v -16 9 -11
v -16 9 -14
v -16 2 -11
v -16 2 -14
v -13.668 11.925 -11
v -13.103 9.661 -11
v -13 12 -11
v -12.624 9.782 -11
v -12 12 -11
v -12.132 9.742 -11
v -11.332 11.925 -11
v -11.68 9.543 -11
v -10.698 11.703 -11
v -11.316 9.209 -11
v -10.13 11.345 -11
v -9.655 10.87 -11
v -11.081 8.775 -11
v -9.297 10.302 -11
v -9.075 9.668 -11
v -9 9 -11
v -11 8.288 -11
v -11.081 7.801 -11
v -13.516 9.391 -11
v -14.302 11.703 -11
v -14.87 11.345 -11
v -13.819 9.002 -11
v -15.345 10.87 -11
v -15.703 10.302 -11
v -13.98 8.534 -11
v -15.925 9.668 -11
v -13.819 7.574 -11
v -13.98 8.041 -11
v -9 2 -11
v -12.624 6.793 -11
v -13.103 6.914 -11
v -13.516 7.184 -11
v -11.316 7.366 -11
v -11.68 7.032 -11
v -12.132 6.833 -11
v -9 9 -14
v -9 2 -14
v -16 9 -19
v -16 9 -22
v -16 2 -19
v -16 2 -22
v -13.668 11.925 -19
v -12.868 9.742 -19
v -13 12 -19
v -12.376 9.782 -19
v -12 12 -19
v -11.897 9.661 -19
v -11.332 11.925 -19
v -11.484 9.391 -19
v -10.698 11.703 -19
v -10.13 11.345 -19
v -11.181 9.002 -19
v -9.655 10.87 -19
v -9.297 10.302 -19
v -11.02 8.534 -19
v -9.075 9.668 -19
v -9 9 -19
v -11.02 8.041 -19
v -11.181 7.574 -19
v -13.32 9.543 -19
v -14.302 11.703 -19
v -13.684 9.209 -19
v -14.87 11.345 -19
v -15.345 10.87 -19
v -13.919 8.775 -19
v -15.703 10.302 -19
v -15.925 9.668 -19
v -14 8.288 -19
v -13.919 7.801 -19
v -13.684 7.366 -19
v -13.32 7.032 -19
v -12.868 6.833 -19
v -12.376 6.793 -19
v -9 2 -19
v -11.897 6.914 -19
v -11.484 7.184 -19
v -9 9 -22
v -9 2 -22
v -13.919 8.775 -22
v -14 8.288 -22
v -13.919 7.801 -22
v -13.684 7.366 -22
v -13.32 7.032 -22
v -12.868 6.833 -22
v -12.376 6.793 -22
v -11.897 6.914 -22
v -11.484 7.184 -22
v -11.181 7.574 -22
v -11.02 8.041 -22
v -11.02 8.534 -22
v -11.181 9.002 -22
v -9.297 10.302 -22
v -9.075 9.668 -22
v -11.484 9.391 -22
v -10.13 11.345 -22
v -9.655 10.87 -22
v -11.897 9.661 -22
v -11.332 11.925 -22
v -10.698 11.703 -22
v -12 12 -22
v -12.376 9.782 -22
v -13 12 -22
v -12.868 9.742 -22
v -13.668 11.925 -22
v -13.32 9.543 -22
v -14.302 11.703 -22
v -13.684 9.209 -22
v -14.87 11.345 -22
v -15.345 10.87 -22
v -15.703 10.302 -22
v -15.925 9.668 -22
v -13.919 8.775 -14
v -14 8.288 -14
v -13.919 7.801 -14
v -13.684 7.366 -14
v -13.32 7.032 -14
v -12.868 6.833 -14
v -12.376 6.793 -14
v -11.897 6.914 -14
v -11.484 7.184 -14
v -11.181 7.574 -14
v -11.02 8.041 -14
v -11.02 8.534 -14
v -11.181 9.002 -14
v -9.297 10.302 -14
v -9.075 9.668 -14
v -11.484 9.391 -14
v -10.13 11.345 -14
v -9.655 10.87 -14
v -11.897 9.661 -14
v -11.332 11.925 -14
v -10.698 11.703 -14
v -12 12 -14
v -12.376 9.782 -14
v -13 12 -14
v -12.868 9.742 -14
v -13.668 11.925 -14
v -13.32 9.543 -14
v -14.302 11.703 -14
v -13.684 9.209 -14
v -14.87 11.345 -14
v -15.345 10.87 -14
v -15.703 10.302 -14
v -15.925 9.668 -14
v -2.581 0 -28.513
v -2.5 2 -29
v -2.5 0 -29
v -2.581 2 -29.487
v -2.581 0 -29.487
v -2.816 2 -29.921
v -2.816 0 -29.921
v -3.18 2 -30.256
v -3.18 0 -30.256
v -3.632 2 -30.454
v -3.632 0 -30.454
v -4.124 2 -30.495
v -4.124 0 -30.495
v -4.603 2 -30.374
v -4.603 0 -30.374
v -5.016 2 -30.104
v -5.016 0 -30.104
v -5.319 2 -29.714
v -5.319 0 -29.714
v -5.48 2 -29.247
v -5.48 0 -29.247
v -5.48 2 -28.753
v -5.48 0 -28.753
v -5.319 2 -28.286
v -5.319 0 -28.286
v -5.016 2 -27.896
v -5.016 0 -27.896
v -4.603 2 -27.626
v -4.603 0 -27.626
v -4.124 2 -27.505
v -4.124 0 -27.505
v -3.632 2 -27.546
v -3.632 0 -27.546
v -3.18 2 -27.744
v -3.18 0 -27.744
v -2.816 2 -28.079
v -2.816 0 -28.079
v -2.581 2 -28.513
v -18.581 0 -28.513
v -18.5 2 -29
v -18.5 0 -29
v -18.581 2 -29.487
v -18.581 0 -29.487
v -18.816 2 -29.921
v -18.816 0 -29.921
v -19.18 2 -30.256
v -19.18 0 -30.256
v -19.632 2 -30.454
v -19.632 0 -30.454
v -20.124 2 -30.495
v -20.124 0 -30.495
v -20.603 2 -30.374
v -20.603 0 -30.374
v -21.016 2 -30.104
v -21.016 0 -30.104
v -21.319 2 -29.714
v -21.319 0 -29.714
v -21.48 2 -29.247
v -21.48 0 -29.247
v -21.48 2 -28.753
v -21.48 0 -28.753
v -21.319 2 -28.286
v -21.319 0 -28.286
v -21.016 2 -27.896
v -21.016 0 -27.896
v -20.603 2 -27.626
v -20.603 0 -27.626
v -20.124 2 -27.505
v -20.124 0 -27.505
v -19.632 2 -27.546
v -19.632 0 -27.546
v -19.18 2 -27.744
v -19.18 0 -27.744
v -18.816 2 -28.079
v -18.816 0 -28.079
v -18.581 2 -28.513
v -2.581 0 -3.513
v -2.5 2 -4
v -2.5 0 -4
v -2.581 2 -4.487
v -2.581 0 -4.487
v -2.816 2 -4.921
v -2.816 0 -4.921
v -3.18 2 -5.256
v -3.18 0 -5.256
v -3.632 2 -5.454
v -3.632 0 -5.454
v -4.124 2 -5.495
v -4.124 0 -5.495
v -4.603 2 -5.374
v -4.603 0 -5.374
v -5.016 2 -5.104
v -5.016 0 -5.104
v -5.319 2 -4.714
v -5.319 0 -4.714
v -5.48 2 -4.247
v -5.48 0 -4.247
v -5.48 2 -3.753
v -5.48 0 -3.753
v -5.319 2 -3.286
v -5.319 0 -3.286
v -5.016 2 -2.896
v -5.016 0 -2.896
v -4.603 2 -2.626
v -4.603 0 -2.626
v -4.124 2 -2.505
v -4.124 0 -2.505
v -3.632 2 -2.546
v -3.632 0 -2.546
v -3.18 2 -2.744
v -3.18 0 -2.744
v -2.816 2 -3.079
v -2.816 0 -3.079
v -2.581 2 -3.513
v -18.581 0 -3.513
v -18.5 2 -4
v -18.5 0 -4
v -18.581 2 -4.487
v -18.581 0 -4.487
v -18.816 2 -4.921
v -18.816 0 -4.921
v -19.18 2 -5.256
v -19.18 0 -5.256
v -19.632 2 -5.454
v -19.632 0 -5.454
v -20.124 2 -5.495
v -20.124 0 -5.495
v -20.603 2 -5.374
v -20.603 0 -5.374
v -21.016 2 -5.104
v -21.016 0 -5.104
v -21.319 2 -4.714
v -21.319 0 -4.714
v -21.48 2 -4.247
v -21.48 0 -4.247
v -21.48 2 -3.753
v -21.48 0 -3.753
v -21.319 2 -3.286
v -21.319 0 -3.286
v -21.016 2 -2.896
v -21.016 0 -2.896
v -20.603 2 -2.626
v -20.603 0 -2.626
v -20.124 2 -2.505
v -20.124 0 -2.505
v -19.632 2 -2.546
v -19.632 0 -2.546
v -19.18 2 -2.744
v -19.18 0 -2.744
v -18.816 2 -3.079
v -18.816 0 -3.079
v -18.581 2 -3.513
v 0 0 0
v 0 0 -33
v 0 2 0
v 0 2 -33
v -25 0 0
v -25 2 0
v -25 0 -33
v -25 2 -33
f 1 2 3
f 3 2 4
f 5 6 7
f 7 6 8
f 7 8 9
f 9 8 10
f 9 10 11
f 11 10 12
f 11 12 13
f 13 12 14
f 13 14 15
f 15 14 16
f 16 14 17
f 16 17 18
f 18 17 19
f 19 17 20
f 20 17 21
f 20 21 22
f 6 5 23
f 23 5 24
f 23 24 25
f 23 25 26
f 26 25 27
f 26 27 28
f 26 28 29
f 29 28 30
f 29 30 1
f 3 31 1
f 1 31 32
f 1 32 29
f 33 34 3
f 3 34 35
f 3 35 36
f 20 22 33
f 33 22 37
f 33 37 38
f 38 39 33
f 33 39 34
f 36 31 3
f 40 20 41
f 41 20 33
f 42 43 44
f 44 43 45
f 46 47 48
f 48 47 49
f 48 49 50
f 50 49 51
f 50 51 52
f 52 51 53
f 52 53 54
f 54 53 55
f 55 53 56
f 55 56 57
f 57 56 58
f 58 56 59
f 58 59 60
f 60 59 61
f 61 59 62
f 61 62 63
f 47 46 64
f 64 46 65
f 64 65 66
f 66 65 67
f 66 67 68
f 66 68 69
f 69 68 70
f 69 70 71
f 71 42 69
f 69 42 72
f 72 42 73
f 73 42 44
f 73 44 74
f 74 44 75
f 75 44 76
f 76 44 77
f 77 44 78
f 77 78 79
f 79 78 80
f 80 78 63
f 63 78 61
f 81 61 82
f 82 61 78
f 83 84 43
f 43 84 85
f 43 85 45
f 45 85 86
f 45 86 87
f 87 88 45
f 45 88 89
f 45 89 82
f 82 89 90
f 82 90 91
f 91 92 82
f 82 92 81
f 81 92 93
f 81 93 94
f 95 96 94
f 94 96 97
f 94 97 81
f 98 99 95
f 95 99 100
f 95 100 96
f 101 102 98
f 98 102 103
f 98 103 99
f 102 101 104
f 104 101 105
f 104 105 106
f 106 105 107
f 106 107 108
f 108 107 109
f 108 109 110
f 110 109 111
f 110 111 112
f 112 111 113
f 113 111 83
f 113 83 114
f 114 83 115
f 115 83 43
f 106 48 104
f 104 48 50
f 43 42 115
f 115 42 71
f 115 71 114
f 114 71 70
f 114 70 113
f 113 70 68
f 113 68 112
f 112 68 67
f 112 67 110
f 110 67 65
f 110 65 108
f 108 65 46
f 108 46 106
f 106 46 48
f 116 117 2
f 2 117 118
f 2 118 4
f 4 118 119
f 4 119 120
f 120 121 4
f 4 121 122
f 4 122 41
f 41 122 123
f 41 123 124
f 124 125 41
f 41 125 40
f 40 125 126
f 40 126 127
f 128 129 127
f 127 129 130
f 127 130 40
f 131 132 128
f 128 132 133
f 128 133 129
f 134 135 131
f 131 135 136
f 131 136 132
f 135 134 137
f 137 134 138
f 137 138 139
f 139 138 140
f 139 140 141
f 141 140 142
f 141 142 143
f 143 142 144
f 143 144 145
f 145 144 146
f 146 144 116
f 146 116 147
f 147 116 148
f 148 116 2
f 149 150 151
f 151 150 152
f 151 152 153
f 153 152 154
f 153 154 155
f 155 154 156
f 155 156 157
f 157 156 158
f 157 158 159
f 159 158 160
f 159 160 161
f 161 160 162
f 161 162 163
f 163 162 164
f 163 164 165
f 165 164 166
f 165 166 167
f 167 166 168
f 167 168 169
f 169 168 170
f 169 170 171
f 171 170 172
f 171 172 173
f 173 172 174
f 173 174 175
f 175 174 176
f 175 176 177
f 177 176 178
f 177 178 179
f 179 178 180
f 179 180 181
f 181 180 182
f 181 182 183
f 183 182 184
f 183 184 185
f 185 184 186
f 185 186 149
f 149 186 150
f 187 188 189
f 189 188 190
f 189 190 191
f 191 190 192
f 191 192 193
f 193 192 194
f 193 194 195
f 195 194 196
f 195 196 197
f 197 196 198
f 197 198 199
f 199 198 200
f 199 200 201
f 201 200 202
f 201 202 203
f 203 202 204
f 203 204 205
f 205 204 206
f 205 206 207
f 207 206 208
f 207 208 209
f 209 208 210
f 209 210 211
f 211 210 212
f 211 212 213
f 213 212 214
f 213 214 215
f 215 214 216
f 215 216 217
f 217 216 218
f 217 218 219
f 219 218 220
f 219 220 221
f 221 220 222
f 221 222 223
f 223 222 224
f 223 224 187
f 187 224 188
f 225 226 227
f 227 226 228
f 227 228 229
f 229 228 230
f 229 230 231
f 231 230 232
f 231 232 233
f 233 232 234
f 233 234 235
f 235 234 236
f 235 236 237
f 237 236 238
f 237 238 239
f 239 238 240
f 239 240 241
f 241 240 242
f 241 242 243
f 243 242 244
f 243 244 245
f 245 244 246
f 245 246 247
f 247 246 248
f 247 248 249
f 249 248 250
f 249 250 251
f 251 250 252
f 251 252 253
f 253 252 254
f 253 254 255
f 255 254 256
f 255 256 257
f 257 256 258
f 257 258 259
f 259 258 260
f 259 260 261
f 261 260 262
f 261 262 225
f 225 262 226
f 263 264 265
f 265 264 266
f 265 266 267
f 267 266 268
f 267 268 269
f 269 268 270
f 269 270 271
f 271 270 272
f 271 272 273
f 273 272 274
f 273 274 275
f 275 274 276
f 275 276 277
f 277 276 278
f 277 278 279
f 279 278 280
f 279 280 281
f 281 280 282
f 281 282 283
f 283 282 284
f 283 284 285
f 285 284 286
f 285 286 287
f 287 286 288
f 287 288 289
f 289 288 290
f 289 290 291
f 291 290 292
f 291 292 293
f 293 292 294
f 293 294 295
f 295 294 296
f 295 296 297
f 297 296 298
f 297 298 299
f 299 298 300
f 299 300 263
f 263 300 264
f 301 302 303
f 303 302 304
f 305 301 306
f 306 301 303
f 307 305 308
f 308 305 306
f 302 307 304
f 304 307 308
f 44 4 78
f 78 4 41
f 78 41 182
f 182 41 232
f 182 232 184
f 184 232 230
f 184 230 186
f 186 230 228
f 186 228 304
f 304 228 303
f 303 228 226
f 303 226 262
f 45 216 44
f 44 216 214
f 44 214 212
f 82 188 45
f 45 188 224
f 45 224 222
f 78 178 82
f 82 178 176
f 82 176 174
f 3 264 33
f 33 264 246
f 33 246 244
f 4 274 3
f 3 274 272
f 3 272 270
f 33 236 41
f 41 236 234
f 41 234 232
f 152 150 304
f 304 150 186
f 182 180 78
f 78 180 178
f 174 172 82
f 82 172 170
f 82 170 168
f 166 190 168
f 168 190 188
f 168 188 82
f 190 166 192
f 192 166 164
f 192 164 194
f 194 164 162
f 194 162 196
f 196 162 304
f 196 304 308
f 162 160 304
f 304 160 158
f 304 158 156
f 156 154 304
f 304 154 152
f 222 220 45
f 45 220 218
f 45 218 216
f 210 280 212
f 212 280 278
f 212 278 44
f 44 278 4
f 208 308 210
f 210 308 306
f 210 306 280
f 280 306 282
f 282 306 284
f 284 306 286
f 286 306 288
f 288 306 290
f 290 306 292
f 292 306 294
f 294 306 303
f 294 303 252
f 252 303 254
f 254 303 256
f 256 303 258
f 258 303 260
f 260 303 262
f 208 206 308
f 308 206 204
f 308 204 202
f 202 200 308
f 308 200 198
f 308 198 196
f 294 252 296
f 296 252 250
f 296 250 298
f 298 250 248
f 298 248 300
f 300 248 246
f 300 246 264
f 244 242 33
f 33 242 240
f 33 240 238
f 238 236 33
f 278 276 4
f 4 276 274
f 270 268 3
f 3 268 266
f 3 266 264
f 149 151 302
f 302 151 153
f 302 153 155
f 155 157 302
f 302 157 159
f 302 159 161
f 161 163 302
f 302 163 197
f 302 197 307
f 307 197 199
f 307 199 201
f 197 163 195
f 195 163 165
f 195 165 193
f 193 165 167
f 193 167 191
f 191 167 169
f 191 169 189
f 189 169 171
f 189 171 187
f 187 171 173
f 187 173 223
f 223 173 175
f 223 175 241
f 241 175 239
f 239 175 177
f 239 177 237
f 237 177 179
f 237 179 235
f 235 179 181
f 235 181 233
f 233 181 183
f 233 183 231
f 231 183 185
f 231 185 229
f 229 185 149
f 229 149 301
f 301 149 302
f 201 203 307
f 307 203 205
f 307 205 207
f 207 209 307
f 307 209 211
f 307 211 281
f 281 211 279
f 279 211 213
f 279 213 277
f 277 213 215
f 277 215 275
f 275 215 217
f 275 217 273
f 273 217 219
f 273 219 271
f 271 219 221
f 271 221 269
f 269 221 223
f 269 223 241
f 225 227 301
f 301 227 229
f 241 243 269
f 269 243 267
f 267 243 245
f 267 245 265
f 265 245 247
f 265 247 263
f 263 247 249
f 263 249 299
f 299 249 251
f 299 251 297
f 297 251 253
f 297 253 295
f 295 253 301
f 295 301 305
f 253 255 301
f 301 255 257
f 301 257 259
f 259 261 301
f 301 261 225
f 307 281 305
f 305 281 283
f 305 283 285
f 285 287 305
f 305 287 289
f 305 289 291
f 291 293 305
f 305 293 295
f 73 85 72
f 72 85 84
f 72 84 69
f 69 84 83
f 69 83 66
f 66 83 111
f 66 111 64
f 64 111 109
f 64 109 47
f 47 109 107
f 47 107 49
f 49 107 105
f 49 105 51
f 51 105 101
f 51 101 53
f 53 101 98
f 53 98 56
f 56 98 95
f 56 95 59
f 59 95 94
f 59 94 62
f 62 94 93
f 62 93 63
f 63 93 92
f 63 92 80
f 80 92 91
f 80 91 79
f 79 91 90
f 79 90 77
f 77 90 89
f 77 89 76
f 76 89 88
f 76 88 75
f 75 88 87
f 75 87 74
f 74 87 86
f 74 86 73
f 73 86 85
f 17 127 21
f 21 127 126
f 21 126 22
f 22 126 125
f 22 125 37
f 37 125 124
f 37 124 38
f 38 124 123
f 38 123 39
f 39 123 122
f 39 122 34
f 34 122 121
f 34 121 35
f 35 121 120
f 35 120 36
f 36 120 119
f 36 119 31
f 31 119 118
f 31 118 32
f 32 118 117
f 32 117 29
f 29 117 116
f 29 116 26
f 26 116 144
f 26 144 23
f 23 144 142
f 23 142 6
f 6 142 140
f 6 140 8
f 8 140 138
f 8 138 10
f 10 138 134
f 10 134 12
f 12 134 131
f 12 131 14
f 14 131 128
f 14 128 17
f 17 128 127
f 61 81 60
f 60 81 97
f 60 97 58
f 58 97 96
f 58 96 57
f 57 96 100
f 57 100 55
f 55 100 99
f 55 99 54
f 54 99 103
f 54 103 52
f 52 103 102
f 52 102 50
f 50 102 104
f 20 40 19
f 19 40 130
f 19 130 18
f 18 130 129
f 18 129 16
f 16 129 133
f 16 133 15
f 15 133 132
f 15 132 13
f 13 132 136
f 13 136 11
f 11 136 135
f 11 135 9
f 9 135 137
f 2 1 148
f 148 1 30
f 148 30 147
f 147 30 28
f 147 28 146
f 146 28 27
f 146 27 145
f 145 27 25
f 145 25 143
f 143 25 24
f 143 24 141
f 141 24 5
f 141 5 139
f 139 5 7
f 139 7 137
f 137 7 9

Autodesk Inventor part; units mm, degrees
ref_plane "YZ Plane" through (0, 0, 0) normal (1, 0, 0) x (0, 1, 0)
ref_plane "XZ Plane" through (0, 0, 0) normal (0, 1, 0) x (-1, 0, 0)
ref_plane "XY Plane" through (0, 0, 0) normal (0, 0, 1) x (1, 0, 0)
sketch "Sketch3" plane through (0, 0, 0) normal (0, 1, 0) x (-1, 0, 0)
  line L0 (0, 0) -> (25, 0)
  line L1 (25, 0) -> (25, -33)
  line L2 (25, -33) -> (0, -33)
  line L3 (0, -33) -> (0, 0)
  dimension "d6" = 25
  dimension "d7" = 33
extrude "Extrusion2" add sketch "Sketch3" along normal blind 2
sketch "Sketch4" plane through (0, 2, 0) normal (0, 1, 0) x (1, 0, 0)
  circle A0 centre (-4, 4) radius 1.5
  line L0 (0, 0) -> (0, 33) projected
  line L1 (-25, 0) -> (0, 0) projected
  circle A1 centre (-4, 29) radius 1.5
  line L2 (0, 33) -> (-25, 33) projected
  circle A2 centre (-20, 4) radius 1.5
  line L3 (-25, 33) -> (-25, 0) projected
  circle A3 centre (-20, 29) radius 1.5
  dimension "d16" = 3
  dimension "d17" = 4
  dimension "d18" = 4
  dimension "d19" = 3
  dimension "d20" = 4
  dimension "d21" = 4
  dimension "d22" = 3
  dimension "d23" = 16
  dimension "d24" = 4
  dimension "d25" = 5
  dimension "d26" = 3
  dimension "d27" = 4
  dimension "d28" = 16
  dimension "d29" = 25
extrude "Extrusion3" cut sketch "Sketch4" against normal blind 2 contours A0 | A1 | A2 | A3
sketch "Sketch5" plane through (0, 2, 0) normal (0, 1, 0) x (1, 0, 0)
  line L0 (-16, 11) -> (-9, 11)
  line L1 (-9, 11) -> (-9, 14)
  line L2 (-9, 14) -> (-16, 14)
  line L3 (-16, 14) -> (-16, 11)
  line L4 (-25, 33) -> (-25, 0) projected
  line L5 (0, 0) -> (0, 33) projected
  line L6 (-25, 0) -> (0, 0) projected
  line L7 (0, 33) -> (-25, 33) projected
  circle A0 centre (-4, 29) radius 1.5 projected
  circle A1 centre (-20, 29) radius 1.5 projected
  circle A2 centre (-4, 4) radius 1.5 projected
  circle A3 centre (-20, 4) radius 1.5 projected
  line L8 (0, 33) -> (-25, 33) projected
  line L9 (-25, 33) -> (-25, 0) projected
  line L10 (-25, 0) -> (0, 0) projected
  line L11 (0, 0) -> (0, 33) projected
  line L12 (-16, 19) -> (-9, 19)
  line L13 (-9, 19) -> (-9, 22)
  line L14 (-9, 22) -> (-16, 22)
  line L15 (-16, 22) -> (-16, 19)
  dimension "d32" = 7
  dimension "d36" = 11
  dimension "d37" = 3
  dimension "d39" = 7
  dimension "d40" = 3
  dimension "d41" = 11
  dimension "d42" = 9
  dimension "d43" = 9
extrude "Extrusion4" add sketch "Sketch5" along normal blind 10 contours L3 L2 L1 L0 | L15 L14 L13 L12
sketch "Sketch6" plane through (-16, 2, -11) normal (0, 0, 1) x (1, 0, 0)
  circle A0 centre (3.5, 6.2876) radius 1.5
  line L0 (0, 0) -> (0, 10) projected
  line L1 (7, 0) -> (7, 10) projected
  point P0 (16, -2)
  dimension "d46" = 3
  dimension "d47" = 3.5
  dimension "d51" = 3.5
extrude "Extrusion5" cut sketch "Sketch6" against normal blind 13.5
fillet "Fillet1" radius 3 4 edges at (-9, 12, -20.5) (-9, 12, -12.5) (-16, 12, -12.5) (-16, 12, -20.5)
properties part number "CamBracket"
